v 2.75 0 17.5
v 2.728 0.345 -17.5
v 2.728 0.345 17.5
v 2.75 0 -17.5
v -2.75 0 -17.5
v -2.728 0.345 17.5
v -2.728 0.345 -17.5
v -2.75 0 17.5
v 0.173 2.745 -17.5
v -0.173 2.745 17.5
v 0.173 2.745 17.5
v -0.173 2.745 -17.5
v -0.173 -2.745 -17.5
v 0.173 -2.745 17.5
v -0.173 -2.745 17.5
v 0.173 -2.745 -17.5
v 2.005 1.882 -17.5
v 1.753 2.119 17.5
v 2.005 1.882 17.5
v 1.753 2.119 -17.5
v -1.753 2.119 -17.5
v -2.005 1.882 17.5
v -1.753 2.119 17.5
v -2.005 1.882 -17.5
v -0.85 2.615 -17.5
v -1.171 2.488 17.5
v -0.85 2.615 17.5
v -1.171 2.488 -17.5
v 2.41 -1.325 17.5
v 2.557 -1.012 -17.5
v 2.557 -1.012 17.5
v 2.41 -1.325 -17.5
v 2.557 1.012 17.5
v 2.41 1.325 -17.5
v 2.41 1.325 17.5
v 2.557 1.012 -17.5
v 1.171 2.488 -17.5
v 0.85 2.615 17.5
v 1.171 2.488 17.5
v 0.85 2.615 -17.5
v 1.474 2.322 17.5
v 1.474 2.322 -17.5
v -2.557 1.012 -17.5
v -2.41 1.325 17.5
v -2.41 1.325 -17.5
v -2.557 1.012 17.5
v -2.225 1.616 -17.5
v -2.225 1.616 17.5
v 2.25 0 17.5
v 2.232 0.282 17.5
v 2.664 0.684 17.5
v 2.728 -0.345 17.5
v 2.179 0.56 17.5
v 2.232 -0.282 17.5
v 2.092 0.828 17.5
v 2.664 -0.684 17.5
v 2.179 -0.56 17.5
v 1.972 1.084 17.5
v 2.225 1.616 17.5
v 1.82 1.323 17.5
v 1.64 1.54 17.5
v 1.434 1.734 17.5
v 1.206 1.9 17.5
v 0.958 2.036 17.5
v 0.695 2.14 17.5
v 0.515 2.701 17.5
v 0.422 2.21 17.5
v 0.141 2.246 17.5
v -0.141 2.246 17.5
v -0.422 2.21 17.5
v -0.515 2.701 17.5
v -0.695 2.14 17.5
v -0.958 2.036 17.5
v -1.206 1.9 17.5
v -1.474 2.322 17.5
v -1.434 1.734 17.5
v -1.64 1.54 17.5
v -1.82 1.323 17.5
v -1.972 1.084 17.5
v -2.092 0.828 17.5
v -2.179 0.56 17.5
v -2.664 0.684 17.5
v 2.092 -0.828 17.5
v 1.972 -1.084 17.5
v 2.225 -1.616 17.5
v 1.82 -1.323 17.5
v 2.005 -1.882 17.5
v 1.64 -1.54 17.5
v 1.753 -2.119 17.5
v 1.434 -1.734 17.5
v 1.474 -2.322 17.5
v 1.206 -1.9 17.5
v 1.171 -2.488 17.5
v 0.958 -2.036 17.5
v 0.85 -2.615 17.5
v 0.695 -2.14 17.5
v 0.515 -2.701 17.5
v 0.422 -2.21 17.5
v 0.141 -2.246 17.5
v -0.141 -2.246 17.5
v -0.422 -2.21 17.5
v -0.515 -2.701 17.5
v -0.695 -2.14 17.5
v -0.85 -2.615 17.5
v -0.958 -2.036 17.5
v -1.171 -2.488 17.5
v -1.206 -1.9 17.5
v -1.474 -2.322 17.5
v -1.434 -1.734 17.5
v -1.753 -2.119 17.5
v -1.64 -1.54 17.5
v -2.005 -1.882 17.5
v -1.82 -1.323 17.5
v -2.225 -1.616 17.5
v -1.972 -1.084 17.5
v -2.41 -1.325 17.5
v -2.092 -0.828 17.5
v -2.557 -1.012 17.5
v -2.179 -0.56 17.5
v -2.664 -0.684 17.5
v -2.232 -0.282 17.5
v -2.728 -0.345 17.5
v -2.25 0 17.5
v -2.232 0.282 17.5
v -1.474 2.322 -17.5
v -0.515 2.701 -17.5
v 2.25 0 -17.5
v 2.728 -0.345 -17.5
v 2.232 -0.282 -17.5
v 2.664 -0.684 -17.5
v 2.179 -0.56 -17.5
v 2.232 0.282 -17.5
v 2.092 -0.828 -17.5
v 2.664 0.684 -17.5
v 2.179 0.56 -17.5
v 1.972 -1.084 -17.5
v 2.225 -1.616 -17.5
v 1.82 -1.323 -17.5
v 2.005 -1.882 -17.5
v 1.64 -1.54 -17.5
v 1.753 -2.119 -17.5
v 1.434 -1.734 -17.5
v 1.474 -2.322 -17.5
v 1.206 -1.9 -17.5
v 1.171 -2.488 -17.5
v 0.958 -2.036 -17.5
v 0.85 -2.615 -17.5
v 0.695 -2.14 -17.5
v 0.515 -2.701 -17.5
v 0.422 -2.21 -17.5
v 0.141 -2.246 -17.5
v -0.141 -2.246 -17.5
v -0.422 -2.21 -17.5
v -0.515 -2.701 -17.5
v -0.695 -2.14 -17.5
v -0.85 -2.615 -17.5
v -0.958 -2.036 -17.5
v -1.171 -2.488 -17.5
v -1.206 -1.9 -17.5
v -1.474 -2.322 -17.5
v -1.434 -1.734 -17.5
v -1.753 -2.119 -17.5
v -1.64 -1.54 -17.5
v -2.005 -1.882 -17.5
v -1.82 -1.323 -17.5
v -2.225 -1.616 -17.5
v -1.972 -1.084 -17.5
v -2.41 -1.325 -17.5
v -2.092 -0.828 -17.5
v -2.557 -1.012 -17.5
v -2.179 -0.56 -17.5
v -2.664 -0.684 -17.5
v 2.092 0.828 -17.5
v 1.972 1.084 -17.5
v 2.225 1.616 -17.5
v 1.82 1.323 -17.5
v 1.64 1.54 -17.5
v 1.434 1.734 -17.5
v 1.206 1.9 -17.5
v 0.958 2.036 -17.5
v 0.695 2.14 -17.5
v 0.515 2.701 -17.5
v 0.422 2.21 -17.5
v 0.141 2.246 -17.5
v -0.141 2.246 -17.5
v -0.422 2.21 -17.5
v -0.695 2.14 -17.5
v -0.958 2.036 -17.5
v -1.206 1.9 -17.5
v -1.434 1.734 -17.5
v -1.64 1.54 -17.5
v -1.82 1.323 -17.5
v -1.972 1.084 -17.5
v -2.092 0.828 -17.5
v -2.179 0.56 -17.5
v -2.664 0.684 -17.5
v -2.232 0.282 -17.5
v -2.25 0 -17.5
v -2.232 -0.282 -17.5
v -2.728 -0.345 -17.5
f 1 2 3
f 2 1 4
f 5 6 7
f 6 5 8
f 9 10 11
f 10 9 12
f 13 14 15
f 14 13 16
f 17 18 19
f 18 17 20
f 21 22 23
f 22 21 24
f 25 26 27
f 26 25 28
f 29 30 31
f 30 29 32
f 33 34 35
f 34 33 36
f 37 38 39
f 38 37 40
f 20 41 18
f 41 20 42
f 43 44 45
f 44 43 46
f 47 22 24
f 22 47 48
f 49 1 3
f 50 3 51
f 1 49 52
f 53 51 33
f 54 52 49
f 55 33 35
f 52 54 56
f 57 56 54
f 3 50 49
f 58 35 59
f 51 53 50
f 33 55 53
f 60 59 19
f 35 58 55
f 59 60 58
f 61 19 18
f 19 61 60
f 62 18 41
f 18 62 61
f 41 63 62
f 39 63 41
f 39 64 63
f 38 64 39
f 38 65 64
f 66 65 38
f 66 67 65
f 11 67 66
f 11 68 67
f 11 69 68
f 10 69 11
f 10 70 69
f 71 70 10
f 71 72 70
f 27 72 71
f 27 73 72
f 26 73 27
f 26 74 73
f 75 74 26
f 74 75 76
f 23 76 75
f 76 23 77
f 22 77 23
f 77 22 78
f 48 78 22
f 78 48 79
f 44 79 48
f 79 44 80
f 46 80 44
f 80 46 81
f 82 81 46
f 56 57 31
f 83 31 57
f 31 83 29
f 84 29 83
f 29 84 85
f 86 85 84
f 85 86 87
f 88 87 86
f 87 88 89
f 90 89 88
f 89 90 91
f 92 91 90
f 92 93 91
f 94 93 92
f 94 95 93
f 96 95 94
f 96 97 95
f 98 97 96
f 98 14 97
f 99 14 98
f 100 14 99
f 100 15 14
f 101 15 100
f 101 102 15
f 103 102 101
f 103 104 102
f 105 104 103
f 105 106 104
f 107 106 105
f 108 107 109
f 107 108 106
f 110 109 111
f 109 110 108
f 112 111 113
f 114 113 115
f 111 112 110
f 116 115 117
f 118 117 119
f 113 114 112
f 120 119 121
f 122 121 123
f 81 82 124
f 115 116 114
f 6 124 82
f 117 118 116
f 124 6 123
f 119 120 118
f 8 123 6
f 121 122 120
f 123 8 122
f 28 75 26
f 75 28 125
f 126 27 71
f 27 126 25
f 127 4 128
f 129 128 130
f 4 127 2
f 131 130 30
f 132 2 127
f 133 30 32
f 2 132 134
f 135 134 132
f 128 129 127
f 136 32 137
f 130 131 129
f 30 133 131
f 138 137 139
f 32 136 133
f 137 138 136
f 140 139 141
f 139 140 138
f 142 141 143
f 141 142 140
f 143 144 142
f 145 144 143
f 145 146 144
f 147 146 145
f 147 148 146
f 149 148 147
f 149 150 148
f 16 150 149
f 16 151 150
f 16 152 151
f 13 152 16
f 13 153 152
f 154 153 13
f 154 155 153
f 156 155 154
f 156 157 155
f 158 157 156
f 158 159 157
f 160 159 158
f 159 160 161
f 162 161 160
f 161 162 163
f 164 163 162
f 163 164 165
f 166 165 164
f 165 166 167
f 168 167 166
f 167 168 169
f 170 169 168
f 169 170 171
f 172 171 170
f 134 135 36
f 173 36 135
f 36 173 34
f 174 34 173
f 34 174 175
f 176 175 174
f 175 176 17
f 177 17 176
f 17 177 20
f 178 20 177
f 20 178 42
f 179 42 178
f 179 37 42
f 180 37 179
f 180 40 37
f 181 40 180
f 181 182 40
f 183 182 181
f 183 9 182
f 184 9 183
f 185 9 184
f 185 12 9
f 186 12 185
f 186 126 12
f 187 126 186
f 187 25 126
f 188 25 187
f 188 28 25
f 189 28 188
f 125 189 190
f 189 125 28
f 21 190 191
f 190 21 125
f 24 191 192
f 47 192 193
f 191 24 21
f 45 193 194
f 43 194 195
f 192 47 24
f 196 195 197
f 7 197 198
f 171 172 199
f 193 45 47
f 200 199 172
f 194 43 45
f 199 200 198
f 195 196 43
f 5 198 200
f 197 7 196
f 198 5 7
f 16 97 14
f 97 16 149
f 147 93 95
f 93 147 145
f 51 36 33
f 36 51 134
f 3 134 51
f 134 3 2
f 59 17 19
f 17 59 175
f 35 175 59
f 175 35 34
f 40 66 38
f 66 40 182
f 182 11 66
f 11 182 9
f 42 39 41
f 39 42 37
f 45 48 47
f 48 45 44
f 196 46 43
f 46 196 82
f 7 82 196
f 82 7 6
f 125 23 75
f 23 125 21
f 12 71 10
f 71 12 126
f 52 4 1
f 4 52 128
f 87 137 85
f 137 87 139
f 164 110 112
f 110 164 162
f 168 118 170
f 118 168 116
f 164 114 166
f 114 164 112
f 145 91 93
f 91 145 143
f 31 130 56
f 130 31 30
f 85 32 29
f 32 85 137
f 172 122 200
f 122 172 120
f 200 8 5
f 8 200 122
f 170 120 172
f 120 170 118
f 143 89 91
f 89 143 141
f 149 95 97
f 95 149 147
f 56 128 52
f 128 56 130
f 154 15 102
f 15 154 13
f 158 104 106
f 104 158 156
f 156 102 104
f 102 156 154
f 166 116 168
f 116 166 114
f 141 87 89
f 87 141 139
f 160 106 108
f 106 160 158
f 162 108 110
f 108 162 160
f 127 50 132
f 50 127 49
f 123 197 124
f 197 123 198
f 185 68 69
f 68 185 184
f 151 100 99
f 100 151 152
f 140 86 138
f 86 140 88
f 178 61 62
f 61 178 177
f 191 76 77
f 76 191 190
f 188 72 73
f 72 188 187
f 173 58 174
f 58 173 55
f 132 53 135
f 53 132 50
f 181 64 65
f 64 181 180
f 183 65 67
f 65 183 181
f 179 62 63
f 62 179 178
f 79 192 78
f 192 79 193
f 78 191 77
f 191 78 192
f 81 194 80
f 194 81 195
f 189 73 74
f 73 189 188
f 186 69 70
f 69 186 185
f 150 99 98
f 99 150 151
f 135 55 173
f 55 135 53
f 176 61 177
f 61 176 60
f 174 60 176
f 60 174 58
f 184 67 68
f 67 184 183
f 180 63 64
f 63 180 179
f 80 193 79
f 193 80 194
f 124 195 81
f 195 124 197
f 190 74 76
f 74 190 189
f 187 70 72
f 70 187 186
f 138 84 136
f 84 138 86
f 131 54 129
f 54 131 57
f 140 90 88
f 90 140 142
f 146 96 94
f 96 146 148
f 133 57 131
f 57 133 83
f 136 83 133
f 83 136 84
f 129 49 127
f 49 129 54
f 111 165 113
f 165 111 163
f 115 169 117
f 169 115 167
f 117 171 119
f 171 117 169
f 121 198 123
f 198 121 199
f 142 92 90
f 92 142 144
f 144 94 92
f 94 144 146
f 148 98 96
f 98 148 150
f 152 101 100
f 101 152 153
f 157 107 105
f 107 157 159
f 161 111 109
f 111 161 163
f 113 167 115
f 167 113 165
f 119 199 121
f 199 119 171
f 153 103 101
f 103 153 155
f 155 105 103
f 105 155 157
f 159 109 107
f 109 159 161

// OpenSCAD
$fn = 50;


difference() {
	union() {
		translate(v = [0, 0, -17.5000000000]) {
			cylinder(h = 35, r = 2.7500000000);
		}
	}
	union() {
		translate(v = [0, 0, -100.0000000000]) {
			cylinder(h = 200, r = 2.2500000000);
		}
	}
}
